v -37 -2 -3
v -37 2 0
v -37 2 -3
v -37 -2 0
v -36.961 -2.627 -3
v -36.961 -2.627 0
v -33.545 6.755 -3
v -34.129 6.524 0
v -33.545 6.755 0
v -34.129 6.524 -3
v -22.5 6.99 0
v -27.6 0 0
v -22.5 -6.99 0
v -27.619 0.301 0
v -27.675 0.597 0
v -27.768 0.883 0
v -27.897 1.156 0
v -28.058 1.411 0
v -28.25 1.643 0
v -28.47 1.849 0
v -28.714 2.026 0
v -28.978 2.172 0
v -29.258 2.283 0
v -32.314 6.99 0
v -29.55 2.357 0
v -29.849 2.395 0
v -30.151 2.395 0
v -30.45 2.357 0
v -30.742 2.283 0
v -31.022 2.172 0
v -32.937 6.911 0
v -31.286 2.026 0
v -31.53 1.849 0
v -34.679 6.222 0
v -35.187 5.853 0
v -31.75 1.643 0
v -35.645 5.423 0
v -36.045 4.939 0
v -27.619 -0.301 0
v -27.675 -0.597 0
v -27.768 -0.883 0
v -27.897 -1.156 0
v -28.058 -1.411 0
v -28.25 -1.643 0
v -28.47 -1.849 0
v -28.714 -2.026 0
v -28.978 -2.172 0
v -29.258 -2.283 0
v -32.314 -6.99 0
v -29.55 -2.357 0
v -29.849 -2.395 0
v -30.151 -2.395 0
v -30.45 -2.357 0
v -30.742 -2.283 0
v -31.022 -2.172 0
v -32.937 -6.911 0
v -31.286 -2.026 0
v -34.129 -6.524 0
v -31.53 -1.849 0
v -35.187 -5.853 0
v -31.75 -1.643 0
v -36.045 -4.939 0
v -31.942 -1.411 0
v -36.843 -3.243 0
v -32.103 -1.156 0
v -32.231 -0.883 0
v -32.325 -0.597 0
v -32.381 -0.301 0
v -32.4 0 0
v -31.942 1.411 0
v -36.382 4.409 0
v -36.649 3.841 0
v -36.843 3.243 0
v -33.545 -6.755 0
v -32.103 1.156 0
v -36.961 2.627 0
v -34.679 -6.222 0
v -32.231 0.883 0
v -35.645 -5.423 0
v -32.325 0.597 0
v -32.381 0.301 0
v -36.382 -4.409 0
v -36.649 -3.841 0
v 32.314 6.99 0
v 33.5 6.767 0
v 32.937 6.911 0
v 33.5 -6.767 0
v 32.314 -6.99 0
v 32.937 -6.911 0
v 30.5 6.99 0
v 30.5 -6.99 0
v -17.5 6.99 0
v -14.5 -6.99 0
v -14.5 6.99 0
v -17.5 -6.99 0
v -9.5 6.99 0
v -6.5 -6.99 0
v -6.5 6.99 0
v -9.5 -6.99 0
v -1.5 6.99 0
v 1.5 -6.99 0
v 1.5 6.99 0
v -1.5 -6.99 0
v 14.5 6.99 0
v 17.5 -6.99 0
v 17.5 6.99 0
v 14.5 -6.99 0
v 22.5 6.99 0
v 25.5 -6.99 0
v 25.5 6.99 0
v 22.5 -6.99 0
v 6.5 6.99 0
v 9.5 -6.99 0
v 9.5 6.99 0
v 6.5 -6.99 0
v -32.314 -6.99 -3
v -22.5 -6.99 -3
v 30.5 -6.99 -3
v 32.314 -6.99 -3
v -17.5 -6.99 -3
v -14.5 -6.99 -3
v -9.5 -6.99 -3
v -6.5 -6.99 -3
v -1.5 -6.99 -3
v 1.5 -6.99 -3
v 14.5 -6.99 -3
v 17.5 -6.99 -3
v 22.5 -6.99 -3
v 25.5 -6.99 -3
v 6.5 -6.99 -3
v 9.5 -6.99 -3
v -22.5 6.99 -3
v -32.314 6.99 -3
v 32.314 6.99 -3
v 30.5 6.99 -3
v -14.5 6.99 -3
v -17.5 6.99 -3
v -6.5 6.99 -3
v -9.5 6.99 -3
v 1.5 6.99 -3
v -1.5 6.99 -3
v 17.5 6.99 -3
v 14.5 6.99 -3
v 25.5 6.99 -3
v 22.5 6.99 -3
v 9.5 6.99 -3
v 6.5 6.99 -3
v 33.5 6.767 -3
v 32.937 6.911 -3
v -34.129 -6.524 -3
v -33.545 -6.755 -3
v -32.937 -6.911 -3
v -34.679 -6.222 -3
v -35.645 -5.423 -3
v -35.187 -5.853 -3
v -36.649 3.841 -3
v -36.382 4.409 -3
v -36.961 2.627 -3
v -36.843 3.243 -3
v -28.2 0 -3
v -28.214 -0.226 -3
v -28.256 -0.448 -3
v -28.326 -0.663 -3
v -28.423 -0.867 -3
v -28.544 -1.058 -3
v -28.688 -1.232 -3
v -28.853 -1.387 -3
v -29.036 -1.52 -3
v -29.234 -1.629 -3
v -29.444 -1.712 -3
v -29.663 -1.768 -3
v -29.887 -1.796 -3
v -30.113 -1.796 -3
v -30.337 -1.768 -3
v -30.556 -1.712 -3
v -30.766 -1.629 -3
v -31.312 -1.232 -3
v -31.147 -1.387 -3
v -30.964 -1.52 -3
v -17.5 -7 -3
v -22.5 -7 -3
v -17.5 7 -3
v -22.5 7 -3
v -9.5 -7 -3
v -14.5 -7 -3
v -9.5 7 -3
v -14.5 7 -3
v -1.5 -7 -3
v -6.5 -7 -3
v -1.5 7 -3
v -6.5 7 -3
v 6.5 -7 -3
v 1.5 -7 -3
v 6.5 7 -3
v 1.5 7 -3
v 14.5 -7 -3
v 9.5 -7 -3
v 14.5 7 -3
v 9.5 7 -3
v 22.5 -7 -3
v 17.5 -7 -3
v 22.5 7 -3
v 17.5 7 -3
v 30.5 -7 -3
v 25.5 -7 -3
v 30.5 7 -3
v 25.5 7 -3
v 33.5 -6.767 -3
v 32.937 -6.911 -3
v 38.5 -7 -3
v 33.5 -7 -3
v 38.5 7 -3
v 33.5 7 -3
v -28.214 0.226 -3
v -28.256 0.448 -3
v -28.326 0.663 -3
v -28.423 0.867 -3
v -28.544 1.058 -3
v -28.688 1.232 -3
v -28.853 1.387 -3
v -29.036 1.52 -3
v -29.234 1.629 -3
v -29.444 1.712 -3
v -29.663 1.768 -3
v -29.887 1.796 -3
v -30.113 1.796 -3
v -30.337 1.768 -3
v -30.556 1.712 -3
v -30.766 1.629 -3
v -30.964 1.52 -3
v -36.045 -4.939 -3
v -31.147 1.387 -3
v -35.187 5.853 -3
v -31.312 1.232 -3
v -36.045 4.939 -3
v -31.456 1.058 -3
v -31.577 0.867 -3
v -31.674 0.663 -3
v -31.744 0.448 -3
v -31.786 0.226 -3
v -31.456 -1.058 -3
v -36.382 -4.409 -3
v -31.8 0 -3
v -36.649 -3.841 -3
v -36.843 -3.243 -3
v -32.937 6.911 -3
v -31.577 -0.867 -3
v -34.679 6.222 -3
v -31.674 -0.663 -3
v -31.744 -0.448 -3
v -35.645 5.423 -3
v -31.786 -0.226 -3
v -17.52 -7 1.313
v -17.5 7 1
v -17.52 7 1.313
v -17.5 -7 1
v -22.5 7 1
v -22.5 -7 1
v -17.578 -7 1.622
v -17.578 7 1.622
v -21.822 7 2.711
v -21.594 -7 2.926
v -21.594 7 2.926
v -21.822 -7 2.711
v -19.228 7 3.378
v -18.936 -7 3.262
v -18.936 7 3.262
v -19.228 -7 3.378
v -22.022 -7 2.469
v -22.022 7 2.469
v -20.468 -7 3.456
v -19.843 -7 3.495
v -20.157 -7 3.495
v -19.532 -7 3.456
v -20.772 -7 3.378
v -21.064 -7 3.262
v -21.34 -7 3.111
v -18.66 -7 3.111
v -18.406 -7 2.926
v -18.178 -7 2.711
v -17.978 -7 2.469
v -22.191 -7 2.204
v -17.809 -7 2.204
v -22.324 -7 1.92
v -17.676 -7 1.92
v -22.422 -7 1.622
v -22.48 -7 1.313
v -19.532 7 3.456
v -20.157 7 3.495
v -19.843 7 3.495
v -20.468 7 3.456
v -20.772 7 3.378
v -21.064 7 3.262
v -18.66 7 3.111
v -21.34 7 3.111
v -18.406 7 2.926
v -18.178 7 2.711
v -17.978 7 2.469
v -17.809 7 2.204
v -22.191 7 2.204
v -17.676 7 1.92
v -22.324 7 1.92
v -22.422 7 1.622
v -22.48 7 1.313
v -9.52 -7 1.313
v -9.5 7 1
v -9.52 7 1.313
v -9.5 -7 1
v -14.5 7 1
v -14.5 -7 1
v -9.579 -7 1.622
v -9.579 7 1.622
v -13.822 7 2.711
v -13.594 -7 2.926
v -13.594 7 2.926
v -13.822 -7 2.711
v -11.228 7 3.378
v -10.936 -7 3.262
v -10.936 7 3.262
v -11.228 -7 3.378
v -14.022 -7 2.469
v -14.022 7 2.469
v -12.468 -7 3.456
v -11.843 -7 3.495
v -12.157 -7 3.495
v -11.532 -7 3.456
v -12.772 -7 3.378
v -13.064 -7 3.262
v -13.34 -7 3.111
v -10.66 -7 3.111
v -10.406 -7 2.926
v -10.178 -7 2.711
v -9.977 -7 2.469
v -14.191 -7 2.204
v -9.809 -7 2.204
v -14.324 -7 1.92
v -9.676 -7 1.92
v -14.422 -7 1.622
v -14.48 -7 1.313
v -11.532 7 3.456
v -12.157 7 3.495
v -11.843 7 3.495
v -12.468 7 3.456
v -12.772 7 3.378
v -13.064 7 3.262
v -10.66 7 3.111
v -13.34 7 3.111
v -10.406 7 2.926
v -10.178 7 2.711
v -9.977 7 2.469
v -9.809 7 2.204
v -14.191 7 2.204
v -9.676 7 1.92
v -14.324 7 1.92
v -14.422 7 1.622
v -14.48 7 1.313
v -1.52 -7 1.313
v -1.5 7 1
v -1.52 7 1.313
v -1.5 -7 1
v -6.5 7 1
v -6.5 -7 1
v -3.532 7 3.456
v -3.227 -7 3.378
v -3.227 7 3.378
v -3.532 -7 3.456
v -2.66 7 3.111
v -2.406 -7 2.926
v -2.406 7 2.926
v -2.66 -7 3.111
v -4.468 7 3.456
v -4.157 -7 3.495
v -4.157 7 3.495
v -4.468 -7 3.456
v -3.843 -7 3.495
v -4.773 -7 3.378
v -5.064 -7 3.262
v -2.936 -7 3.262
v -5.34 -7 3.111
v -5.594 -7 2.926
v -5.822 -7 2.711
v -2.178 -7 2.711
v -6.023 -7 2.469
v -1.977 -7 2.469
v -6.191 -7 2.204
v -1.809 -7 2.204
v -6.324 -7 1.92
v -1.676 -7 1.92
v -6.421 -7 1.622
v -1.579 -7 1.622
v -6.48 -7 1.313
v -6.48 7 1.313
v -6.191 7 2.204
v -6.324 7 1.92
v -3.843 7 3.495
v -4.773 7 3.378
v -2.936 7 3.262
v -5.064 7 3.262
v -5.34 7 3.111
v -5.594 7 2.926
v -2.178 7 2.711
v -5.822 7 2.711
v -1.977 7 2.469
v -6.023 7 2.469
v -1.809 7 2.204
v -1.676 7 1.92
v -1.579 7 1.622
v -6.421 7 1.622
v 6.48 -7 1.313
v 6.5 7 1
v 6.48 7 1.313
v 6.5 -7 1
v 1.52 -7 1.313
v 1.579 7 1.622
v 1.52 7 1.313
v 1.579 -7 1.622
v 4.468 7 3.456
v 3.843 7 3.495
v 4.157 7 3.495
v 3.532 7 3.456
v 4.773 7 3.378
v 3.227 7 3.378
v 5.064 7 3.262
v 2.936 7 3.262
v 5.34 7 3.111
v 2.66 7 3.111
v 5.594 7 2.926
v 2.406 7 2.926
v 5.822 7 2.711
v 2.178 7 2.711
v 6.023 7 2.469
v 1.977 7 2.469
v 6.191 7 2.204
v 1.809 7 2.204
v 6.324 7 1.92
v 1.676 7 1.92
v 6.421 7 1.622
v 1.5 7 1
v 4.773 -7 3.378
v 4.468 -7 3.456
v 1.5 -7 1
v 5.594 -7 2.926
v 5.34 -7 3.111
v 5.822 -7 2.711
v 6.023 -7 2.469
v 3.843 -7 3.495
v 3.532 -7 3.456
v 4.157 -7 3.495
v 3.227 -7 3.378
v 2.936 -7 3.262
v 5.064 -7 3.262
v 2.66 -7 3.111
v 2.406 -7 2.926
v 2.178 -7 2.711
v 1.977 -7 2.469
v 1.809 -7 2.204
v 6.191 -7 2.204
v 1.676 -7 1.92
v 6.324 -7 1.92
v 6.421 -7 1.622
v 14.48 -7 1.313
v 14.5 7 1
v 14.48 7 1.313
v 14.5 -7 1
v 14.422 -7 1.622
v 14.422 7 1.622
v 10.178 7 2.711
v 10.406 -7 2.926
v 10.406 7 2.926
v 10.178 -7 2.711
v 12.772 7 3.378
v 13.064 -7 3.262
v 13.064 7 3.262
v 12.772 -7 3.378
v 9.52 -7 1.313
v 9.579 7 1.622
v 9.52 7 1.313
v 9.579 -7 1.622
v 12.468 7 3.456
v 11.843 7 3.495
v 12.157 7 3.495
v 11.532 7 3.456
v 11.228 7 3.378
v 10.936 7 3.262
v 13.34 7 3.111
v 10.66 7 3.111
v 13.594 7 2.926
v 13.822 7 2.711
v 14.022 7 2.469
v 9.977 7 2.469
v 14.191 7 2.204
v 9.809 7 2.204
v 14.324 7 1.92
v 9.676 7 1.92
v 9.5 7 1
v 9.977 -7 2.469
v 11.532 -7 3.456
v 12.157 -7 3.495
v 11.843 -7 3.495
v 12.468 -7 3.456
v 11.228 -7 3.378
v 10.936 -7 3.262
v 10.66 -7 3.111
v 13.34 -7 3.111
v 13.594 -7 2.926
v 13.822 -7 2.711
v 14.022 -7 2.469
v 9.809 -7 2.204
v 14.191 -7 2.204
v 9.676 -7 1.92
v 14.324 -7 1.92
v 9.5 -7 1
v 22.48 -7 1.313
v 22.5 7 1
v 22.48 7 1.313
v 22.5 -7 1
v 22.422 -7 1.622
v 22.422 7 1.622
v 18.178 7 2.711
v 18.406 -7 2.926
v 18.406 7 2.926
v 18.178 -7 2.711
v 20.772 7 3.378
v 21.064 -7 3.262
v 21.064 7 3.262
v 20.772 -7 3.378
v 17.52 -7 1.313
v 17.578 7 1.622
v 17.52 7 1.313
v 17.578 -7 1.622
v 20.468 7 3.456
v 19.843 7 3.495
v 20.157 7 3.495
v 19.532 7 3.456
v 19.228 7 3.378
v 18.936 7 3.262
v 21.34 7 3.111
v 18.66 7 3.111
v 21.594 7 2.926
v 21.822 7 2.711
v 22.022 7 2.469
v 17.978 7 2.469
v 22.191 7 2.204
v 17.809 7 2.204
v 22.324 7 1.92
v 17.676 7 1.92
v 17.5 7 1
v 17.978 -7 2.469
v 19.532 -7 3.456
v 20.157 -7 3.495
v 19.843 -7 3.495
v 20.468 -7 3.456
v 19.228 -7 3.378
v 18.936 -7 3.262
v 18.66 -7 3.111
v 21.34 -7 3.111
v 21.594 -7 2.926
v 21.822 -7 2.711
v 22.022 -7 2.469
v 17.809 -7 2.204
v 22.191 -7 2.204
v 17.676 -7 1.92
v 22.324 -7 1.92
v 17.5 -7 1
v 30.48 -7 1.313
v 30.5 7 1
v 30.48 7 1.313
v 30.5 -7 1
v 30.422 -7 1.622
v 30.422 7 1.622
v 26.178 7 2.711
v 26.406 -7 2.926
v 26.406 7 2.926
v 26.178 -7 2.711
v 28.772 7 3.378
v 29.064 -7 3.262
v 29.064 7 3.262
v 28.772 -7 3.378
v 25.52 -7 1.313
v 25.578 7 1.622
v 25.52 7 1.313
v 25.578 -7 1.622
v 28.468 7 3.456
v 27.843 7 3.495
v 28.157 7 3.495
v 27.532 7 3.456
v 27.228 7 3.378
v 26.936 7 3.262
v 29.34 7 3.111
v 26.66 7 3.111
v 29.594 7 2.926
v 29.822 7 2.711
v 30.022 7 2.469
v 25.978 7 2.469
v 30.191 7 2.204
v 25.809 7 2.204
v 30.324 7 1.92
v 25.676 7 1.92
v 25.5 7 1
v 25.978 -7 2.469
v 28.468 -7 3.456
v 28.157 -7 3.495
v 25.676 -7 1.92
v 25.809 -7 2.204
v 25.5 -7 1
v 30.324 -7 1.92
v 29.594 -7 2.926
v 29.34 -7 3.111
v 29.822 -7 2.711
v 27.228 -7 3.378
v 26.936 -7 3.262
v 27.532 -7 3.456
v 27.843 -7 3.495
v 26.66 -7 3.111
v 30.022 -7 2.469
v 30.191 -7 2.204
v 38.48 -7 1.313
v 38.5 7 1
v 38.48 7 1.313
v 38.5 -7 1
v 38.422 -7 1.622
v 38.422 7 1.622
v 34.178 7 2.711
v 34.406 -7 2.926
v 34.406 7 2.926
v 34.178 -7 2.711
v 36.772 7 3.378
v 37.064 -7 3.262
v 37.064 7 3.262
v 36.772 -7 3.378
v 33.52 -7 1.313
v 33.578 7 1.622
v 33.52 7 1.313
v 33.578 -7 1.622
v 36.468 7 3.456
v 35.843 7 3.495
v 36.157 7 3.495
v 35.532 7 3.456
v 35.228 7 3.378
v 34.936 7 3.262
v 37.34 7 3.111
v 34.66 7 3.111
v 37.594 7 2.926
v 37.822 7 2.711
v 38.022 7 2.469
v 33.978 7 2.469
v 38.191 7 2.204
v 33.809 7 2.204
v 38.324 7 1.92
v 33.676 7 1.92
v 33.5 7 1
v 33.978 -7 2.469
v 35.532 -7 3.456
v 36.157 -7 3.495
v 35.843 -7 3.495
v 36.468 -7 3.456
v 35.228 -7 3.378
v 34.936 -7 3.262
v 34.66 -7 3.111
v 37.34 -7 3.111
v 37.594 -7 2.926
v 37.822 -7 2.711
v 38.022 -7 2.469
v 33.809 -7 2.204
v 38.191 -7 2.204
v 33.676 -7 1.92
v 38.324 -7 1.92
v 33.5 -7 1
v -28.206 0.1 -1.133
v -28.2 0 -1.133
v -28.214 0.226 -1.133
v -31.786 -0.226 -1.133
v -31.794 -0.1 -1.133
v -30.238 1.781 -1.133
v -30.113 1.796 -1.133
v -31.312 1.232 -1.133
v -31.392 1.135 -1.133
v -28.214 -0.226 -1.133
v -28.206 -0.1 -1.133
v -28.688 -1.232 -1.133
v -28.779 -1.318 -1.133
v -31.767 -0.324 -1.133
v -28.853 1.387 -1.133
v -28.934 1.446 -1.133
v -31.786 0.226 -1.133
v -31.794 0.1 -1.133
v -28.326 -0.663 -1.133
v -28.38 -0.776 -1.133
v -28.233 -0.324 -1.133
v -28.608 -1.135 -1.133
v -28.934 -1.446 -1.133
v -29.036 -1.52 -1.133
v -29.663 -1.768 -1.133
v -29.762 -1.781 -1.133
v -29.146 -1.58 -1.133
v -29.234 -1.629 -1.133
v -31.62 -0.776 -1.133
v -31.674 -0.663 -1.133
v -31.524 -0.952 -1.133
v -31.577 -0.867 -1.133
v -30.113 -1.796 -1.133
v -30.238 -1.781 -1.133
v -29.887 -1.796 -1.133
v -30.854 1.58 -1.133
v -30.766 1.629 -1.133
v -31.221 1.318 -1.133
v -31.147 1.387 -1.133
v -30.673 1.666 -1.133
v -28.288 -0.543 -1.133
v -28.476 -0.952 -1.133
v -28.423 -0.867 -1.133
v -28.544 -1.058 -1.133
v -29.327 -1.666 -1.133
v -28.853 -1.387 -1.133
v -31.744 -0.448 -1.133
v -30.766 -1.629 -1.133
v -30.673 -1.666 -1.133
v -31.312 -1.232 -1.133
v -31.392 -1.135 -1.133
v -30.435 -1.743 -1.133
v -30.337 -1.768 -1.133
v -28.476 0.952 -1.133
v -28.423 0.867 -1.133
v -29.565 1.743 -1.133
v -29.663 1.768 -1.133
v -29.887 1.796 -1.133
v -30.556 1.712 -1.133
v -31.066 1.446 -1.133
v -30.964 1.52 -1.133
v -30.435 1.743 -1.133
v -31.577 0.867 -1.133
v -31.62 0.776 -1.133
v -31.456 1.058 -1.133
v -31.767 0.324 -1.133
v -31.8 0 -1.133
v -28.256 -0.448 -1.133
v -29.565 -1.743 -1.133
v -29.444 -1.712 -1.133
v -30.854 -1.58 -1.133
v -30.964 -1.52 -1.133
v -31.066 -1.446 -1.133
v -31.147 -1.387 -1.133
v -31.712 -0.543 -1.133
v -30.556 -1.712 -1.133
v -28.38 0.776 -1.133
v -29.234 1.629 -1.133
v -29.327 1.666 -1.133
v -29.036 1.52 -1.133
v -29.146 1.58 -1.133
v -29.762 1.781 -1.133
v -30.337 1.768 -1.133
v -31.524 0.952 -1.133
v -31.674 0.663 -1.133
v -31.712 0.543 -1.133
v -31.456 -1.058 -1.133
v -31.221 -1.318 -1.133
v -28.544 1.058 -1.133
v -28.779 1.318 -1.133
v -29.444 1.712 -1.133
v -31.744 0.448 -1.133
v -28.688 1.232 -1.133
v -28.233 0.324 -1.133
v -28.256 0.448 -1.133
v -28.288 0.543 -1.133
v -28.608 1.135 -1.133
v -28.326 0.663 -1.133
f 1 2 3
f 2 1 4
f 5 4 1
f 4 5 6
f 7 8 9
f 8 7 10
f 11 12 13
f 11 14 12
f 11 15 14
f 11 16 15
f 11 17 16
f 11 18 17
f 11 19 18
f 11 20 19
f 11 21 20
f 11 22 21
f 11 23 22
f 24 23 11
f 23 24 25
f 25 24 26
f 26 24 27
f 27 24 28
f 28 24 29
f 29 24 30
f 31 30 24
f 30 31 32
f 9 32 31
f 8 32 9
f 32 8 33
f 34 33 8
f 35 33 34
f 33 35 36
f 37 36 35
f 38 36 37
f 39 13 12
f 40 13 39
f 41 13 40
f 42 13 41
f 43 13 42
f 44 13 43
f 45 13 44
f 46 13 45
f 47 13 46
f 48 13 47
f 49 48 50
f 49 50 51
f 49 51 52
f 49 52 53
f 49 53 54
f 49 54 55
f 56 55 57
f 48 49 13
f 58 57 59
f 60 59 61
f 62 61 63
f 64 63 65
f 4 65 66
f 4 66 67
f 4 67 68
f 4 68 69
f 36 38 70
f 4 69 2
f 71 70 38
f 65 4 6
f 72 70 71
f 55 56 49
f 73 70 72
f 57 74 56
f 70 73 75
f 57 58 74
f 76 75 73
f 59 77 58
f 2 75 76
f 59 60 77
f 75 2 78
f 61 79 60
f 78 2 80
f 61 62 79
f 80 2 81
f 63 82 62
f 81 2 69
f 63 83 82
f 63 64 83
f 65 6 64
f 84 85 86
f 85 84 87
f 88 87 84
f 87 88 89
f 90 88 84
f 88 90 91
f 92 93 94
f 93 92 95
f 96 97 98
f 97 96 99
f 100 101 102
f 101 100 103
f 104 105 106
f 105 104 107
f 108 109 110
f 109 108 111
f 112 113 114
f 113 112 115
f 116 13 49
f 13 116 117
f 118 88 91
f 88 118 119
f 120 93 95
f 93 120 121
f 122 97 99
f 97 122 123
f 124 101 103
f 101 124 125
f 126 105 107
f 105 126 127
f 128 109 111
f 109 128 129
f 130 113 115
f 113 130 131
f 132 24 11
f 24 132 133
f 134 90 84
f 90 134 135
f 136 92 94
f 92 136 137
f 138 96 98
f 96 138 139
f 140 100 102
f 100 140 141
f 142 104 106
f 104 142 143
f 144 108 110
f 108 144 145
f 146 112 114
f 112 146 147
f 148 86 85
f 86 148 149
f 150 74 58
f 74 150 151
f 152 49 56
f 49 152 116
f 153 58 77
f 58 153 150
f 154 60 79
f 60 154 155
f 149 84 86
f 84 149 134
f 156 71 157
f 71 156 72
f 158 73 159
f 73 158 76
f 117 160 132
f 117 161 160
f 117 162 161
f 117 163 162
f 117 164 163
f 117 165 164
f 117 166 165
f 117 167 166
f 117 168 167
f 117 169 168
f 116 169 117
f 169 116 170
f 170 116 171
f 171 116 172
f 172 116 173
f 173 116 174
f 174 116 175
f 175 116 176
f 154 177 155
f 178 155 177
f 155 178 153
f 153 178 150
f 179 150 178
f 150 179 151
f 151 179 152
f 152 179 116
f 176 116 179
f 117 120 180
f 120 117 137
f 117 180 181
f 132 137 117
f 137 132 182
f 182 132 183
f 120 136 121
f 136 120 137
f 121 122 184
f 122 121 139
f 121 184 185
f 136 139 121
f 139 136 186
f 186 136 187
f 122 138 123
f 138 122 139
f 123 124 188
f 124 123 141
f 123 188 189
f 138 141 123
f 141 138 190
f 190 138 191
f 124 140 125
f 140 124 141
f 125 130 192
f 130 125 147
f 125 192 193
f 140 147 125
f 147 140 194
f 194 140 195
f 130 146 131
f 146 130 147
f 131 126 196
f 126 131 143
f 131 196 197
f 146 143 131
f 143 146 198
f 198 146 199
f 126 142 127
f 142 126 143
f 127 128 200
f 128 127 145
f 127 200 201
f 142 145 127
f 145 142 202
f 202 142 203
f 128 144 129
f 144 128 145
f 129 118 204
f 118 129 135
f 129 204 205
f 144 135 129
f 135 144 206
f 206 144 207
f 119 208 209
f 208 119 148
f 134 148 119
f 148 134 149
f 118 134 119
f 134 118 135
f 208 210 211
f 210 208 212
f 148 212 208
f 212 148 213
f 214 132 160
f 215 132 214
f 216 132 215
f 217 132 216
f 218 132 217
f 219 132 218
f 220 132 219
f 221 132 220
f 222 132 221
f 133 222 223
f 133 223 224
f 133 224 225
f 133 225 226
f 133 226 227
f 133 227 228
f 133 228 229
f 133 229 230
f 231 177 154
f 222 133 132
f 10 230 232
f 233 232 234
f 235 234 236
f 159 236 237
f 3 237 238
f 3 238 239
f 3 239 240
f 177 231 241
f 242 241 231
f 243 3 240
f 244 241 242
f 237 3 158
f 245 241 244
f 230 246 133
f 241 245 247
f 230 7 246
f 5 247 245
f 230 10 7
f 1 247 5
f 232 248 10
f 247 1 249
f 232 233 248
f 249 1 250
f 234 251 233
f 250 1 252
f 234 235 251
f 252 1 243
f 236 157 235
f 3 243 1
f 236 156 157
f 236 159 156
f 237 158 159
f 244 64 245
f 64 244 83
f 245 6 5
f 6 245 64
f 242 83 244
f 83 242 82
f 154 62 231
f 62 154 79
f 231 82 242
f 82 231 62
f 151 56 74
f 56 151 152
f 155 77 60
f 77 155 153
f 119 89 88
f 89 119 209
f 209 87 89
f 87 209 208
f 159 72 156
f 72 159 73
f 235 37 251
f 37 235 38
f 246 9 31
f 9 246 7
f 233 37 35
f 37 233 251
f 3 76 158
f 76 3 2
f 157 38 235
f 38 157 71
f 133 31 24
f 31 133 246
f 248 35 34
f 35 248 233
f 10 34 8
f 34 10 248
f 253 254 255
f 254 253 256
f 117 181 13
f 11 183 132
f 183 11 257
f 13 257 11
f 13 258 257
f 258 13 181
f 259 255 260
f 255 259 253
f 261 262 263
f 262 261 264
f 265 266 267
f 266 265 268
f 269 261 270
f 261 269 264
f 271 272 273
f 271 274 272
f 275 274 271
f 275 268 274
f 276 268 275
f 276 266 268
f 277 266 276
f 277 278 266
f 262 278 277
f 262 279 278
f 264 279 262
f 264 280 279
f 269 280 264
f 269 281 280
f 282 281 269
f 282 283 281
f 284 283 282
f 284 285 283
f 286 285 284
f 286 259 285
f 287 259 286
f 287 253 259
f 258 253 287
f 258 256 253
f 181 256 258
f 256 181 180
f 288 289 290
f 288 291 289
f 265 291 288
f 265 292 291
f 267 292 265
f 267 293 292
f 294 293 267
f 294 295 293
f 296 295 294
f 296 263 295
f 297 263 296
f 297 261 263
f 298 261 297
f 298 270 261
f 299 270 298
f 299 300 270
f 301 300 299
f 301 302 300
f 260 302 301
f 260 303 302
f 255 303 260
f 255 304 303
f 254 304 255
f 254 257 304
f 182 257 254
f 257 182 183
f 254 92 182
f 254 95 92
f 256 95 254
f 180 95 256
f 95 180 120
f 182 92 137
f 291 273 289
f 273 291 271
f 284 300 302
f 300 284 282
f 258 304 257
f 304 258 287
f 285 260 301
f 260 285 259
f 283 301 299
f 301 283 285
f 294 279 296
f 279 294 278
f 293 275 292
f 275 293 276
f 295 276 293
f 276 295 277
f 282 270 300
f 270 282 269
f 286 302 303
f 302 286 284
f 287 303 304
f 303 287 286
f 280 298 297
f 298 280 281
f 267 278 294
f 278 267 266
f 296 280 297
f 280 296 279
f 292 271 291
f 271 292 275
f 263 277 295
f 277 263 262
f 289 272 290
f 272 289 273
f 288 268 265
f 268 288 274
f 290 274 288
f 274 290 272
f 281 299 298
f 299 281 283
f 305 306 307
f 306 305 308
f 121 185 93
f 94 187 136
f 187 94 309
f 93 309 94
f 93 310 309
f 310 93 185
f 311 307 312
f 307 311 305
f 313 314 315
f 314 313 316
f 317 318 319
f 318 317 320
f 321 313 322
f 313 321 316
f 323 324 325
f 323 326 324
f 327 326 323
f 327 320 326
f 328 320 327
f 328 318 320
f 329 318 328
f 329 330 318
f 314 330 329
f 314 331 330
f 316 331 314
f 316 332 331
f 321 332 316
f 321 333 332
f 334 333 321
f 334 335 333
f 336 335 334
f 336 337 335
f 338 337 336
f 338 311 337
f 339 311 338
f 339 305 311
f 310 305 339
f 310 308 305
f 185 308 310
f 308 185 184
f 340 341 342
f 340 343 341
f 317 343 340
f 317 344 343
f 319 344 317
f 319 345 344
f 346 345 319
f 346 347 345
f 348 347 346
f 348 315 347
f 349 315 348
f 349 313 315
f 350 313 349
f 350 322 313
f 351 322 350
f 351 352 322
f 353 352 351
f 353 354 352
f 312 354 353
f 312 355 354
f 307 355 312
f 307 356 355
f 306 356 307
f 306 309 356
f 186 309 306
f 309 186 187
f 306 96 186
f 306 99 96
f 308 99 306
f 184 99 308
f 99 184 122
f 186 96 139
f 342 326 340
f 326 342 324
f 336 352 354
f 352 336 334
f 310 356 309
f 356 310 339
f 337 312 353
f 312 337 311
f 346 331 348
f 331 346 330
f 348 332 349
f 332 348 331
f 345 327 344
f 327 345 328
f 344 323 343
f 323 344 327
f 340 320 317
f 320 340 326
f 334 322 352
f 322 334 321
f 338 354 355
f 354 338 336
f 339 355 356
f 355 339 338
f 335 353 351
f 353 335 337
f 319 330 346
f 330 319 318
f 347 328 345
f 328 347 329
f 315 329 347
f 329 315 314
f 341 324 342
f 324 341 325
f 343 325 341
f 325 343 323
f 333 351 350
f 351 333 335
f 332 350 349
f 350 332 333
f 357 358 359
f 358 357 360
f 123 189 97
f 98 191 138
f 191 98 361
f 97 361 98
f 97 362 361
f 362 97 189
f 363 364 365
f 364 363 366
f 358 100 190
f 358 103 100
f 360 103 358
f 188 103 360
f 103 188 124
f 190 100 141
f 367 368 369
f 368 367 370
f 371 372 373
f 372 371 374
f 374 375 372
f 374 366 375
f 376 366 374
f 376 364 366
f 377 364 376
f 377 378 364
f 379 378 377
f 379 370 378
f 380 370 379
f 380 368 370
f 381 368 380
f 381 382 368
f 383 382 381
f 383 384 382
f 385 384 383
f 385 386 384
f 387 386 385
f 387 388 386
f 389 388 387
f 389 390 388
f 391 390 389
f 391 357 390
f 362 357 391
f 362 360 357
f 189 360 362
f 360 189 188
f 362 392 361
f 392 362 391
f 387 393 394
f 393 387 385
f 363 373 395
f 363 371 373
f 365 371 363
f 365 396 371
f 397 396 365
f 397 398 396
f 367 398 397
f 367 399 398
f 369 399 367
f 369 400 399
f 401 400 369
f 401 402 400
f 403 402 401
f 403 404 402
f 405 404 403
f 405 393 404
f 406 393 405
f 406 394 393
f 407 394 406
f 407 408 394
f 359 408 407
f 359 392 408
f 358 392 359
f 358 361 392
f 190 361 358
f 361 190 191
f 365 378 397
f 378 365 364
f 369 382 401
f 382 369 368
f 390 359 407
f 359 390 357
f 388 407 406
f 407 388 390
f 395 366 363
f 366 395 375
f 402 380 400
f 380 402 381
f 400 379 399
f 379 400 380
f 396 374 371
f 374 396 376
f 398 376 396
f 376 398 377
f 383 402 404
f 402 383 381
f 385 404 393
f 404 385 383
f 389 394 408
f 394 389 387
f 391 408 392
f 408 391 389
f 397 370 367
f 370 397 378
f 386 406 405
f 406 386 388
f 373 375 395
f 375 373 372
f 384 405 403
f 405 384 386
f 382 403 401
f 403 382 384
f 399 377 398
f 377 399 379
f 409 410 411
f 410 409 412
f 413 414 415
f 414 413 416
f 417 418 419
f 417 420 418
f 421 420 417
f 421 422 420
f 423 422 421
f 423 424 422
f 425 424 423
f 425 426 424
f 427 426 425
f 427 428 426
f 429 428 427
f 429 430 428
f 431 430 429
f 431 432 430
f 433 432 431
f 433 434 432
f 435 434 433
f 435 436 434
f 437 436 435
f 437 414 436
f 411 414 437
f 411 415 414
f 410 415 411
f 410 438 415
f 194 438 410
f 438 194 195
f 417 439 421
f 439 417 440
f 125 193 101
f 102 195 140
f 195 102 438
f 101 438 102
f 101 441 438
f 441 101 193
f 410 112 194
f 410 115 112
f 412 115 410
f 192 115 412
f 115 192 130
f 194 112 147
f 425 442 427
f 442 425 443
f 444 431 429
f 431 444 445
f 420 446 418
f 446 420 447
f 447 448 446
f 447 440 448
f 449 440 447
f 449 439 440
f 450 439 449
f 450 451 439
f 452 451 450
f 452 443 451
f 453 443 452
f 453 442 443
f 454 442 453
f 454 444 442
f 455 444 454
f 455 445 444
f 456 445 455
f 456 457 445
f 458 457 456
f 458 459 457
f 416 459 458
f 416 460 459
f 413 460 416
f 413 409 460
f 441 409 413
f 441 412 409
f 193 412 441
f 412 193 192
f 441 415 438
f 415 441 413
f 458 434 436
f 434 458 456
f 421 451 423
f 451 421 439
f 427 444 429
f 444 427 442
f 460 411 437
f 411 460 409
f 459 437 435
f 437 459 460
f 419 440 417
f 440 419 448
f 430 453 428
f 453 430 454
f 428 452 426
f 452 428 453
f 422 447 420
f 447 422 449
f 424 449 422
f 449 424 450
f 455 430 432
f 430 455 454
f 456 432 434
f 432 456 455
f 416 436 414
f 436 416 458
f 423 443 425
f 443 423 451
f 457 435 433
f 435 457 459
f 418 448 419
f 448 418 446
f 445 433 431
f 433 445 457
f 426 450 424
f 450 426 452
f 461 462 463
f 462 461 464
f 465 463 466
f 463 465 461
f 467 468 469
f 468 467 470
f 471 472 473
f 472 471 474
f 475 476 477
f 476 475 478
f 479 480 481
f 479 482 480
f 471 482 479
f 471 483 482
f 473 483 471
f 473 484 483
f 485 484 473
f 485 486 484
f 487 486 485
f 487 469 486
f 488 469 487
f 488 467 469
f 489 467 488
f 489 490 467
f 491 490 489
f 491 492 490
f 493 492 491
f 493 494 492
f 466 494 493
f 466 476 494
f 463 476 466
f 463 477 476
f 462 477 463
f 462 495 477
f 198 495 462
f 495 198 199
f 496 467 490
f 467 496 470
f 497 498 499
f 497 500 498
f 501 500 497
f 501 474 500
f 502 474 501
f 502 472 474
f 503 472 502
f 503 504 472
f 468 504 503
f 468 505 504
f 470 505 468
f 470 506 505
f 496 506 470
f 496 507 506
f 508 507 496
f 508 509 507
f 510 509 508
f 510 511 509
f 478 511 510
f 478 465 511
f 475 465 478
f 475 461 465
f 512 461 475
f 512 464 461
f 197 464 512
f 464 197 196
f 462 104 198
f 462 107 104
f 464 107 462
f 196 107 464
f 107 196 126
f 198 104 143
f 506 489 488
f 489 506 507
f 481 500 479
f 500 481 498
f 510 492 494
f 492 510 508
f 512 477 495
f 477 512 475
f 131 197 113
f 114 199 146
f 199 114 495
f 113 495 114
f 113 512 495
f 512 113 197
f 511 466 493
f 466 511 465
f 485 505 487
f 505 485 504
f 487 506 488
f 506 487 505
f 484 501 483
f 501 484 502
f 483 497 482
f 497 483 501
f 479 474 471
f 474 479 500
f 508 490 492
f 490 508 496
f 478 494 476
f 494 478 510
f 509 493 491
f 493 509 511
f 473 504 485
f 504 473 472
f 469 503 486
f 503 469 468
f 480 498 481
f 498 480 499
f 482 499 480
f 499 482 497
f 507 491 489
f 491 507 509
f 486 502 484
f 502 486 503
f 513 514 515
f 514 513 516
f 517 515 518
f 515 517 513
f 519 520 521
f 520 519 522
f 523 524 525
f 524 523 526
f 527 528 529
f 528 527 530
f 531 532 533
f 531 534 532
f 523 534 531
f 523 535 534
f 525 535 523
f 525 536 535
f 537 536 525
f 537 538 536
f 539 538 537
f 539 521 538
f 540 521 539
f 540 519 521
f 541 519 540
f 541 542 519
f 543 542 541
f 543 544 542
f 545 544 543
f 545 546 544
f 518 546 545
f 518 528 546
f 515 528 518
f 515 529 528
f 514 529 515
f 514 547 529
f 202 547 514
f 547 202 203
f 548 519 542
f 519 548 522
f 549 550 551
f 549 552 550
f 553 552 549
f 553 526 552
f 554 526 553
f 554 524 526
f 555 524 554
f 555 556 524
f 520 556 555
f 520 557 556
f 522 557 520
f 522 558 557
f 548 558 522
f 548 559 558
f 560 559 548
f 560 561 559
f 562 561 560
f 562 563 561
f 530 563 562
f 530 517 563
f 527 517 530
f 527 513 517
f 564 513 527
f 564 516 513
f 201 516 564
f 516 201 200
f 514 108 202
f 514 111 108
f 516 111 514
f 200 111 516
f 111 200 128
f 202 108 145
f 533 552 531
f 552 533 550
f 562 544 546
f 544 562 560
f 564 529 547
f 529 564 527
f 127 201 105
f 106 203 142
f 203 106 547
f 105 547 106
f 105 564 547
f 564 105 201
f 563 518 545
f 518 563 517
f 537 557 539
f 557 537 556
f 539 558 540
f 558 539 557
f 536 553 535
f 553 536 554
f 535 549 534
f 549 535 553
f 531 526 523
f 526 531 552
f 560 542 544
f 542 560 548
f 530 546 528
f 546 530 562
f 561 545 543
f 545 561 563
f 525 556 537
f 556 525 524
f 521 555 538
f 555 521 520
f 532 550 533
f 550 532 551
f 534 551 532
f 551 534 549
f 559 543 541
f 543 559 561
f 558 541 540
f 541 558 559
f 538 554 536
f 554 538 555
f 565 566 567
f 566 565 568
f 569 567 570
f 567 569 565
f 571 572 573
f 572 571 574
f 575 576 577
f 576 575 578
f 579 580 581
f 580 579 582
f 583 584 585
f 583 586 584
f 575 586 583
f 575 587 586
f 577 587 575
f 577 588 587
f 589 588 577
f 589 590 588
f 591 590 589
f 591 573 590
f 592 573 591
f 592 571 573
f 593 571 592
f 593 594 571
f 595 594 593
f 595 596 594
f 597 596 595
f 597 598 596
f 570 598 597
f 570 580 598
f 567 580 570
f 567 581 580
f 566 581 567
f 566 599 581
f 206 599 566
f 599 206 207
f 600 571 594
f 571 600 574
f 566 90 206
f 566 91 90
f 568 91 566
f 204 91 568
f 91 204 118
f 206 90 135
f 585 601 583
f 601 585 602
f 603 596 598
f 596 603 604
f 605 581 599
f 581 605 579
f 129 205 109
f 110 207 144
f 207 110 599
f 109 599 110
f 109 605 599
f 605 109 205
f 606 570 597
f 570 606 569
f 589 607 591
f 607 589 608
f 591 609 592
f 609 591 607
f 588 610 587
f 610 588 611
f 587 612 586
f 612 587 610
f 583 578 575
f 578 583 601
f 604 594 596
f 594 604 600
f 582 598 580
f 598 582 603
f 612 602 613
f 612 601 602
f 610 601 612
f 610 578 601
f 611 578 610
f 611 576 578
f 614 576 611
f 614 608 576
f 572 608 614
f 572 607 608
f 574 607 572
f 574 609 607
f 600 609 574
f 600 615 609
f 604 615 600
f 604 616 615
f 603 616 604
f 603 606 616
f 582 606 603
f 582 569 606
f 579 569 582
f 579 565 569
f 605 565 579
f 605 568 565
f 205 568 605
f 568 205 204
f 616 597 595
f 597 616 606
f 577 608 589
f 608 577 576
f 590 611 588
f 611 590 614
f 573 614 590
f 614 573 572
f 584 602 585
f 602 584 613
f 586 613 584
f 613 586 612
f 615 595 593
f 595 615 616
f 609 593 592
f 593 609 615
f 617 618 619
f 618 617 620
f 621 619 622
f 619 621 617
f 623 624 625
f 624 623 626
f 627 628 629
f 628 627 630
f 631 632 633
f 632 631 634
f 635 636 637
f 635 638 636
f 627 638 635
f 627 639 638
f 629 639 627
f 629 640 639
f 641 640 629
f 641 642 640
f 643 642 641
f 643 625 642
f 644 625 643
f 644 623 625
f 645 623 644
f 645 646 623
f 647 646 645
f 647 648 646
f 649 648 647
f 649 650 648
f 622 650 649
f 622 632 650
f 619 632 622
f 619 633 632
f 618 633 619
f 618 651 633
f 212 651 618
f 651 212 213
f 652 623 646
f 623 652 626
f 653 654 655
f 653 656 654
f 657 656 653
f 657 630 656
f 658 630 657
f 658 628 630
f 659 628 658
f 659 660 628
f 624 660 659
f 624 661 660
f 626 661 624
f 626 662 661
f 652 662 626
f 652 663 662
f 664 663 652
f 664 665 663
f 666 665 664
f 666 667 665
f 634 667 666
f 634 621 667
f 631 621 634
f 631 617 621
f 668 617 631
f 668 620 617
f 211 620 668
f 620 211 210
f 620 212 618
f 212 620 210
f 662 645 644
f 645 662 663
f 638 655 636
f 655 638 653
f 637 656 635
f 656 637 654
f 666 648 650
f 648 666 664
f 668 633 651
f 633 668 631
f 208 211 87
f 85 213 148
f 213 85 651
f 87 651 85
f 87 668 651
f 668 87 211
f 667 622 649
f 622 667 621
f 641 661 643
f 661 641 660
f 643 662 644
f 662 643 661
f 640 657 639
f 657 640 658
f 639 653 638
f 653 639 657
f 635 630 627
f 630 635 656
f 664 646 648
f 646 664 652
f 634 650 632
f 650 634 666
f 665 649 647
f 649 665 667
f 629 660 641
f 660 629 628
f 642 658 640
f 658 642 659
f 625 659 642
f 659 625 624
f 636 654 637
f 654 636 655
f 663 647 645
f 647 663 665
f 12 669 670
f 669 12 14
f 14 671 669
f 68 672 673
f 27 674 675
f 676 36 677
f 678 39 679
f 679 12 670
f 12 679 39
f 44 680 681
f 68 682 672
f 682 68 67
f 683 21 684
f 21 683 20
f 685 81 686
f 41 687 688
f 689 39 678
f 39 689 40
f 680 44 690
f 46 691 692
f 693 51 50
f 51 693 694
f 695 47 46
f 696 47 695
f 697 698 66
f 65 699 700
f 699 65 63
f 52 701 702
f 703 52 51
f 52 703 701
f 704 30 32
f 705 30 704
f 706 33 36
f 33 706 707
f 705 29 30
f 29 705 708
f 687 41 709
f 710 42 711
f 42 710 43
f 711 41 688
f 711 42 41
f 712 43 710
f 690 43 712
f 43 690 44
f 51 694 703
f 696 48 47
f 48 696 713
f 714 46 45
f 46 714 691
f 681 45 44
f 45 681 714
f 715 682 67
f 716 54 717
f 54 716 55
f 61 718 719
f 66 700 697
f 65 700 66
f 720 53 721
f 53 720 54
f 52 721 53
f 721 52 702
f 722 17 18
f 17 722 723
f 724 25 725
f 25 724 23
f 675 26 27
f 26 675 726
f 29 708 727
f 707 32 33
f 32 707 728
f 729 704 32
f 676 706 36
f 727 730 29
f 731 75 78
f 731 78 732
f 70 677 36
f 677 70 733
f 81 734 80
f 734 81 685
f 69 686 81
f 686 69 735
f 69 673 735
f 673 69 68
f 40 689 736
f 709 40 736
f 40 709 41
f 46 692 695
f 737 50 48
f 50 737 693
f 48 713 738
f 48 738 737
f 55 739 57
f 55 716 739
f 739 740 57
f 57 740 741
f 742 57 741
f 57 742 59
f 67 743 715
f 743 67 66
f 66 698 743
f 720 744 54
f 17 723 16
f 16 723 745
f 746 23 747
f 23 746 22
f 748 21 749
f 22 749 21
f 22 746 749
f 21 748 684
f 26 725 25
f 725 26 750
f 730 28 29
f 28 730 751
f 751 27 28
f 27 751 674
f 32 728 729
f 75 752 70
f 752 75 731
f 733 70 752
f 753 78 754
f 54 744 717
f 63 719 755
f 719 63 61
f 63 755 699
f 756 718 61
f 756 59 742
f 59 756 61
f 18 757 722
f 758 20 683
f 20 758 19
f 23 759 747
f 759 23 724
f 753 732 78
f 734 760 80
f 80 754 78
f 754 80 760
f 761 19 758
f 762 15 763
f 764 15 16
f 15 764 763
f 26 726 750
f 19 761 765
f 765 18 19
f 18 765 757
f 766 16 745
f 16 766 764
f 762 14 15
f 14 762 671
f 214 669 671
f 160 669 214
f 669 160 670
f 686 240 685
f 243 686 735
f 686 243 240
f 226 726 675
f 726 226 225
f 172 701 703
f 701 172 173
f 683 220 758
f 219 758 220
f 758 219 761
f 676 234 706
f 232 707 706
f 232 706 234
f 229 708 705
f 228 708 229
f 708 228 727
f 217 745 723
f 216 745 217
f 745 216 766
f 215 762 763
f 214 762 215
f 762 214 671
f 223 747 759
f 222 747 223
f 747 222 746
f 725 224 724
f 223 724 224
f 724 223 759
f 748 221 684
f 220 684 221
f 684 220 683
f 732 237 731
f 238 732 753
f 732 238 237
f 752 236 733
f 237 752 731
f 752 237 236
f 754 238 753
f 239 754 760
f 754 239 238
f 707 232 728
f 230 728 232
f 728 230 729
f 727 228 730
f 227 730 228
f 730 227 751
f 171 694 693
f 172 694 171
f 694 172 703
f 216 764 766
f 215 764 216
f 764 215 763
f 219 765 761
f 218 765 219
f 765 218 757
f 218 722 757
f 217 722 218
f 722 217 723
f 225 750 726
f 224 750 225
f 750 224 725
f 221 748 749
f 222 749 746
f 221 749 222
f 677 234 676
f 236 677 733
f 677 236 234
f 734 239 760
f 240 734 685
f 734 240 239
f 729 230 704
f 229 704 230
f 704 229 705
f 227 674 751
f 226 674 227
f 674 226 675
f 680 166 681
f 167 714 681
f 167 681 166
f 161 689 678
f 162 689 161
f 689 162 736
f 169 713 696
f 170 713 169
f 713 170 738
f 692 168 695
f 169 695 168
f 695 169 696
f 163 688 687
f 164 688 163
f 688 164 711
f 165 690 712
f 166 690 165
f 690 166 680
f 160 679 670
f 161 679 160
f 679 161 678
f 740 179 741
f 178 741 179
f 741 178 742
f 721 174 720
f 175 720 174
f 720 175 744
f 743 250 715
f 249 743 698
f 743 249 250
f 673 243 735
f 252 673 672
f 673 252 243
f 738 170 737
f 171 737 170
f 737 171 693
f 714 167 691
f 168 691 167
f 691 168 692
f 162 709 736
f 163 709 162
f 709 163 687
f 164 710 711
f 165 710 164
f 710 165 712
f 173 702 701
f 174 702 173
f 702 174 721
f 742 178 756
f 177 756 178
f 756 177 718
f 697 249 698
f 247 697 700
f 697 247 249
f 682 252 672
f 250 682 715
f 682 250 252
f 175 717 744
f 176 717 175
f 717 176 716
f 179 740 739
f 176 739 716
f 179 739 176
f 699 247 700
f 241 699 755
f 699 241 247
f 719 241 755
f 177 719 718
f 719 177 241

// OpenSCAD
$fn = 50;


difference() {
	union() {
		translate(v = [0, 0, -3]) {
			hull() {
				translate(v = [-32.0000000000, 2.0000000000, 0]) {
					cylinder(h = 3, r = 5);
				}
				translate(v = [32.0000000000, 2.0000000000, 0]) {
					cylinder(h = 3, r = 5);
				}
				translate(v = [-32.0000000000, -2.0000000000, 0]) {
					cylinder(h = 3, r = 5);
				}
				translate(v = [32.0000000000, -2.0000000000, 0]) {
					cylinder(h = 3, r = 5);
				}
			}
		}
		translate(v = [-20.0000000000, 7.0000000000, -1.5000000000]) {
			rotate(a = [90, 0, 0]) {
				hull() {
					translate(v = [-0.0000000000, 2.5000000000, 0]) {
						cylinder(h = 14, r = 2.5000000000);
					}
					translate(v = [0.0000000000, 2.5000000000, 0]) {
						cylinder(h = 14, r = 2.5000000000);
					}
					translate(v = [-0.0000000000, -2.5000000000, 0]) {
						cylinder(h = 14, r = 2.5000000000);
					}
					translate(v = [0.0000000000, -2.5000000000, 0]) {
						cylinder(h = 14, r = 2.5000000000);
					}
				}
			}
		}
		translate(v = [-12.0000000000, 7.0000000000, -1.5000000000]) {
			rotate(a = [90, 0, 0]) {
				hull() {
					translate(v = [-0.0000000000, 2.5000000000, 0]) {
						cylinder(h = 14, r = 2.5000000000);
					}
					translate(v = [0.0000000000, 2.5000000000, 0]) {
						cylinder(h = 14, r = 2.5000000000);
					}
					translate(v = [-0.0000000000, -2.5000000000, 0]) {
						cylinder(h = 14, r = 2.5000000000);
					}
					translate(v = [0.0000000000, -2.5000000000, 0]) {
						cylinder(h = 14, r = 2.5000000000);
					}
				}
			}
		}
		translate(v = [-4.0000000000, 7.0000000000, -1.5000000000]) {
			rotate(a = [90, 0, 0]) {
				hull() {
					translate(v = [-0.0000000000, 2.5000000000, 0]) {
						cylinder(h = 14, r = 2.5000000000);
					}
					translate(v = [0.0000000000, 2.5000000000, 0]) {
						cylinder(h = 14, r = 2.5000000000);
					}
					translate(v = [-0.0000000000, -2.5000000000, 0]) {
						cylinder(h = 14, r = 2.5000000000);
					}
					translate(v = [0.0000000000, -2.5000000000, 0]) {
						cylinder(h = 14, r = 2.5000000000);
					}
				}
			}
		}
		translate(v = [4.0000000000, 7.0000000000, -1.5000000000]) {
			rotate(a = [90, 0, 0]) {
				hull() {
					translate(v = [-0.0000000000, 2.5000000000, 0]) {
						cylinder(h = 14, r = 2.5000000000);
					}
					translate(v = [0.0000000000, 2.5000000000, 0]) {
						cylinder(h = 14, r = 2.5000000000);
					}
					translate(v = [-0.0000000000, -2.5000000000, 0]) {
						cylinder(h = 14, r = 2.5000000000);
					}
					translate(v = [0.0000000000, -2.5000000000, 0]) {
						cylinder(h = 14, r = 2.5000000000);
					}
				}
			}
		}
		translate(v = [12.0000000000, 7.0000000000, -1.5000000000]) {
			rotate(a = [90, 0, 0]) {
				hull() {
					translate(v = [-0.0000000000, 2.5000000000, 0]) {
						cylinder(h = 14, r = 2.5000000000);
					}
					translate(v = [0.0000000000, 2.5000000000, 0]) {
						cylinder(h = 14, r = 2.5000000000);
					}
					translate(v = [-0.0000000000, -2.5000000000, 0]) {
						cylinder(h = 14, r = 2.5000000000);
					}
					translate(v = [0.0000000000, -2.5000000000, 0]) {
						cylinder(h = 14, r = 2.5000000000);
					}
				}
			}
		}
		translate(v = [20.0000000000, 7.0000000000, -1.5000000000]) {
			rotate(a = [90, 0, 0]) {
				hull() {
					translate(v = [-0.0000000000, 2.5000000000, 0]) {
						cylinder(h = 14, r = 2.5000000000);
					}
					translate(v = [0.0000000000, 2.5000000000, 0]) {
						cylinder(h = 14, r = 2.5000000000);
					}
					translate(v = [-0.0000000000, -2.5000000000, 0]) {
						cylinder(h = 14, r = 2.5000000000);
					}
					translate(v = [0.0000000000, -2.5000000000, 0]) {
						cylinder(h = 14, r = 2.5000000000);
					}
				}
			}
		}
		translate(v = [28.0000000000, 7.0000000000, -1.5000000000]) {
			rotate(a = [90, 0, 0]) {
				hull() {
					translate(v = [-0.0000000000, 2.5000000000, 0]) {
						cylinder(h = 14, r = 2.5000000000);
					}
					translate(v = [0.0000000000, 2.5000000000, 0]) {
						cylinder(h = 14, r = 2.5000000000);
					}
					translate(v = [-0.0000000000, -2.5000000000, 0]) {
						cylinder(h = 14, r = 2.5000000000);
					}
					translate(v = [0.0000000000, -2.5000000000, 0]) {
						cylinder(h = 14, r = 2.5000000000);
					}
				}
			}
		}
		translate(v = [36.0000000000, 7.0000000000, -1.5000000000]) {
			rotate(a = [90, 0, 0]) {
				hull() {
					translate(v = [-0.0000000000, 2.5000000000, 0]) {
						cylinder(h = 14, r = 2.5000000000);
					}
					translate(v = [0.0000000000, 2.5000000000, 0]) {
						cylinder(h = 14, r = 2.5000000000);
					}
					translate(v = [-0.0000000000, -2.5000000000, 0]) {
						cylinder(h = 14, r = 2.5000000000);
					}
					translate(v = [0.0000000000, -2.5000000000, 0]) {
						cylinder(h = 14, r = 2.5000000000);
					}
				}
			}
		}
	}
	union() {
		translate(v = [-30.0000000000, 0.0000000000, 0]) {
			rotate(a = [0, 0, 0]) {
				difference() {
					union() {
						translate(v = [0, 0, -1.7000000000]) {
							cylinder(h = 1.7000000000, r1 = 1.5000000000, r2 = 2.4000000000);
						}
						translate(v = [0, 0, -3.0000000000]) {
							cylinder(h = 3, r = 1.5000000000);
						}
						translate(v = [0, 0, -3.0000000000]) {
							cylinder(h = 3, r = 1.8000000000);
						}
						translate(v = [0, 0, -3.0000000000]) {
							cylinder(h = 3, r = 1.5000000000);
						}
					}
					union();
				}
			}
		}
		translate(v = [-250.0000000000, -250.0000000000, -503]) {
			cube(size = [500, 500, 500]);
		}
		translate(v = [-250.0000000000, -250.0000000000, -503]) {
			cube(size = [500, 500, 500]);
		}
		translate(v = [-250.0000000000, -250.0000000000, -503]) {
			cube(size = [500, 500, 500]);
		}
		translate(v = [-30.0000000000, 0.0000000000, -100.0000000000]) {
			cylinder(h = 200, r = 1.5000000000);
		}
		translate(v = [-30.0000000000, 0.0000000000, -100.0000000000]) {
			cylinder(h = 200, r = 1.5000000000);
		}
		translate(v = [-30.0000000000, 0.0000000000, -100.0000000000]) {
			cylinder(h = 200, r = 1.5000000000);
		}
		translate(v = [-30.0000000000, 0.0000000000, -100.0000000000]) {
			cylinder(h = 200, r = 1.5000000000);
		}
	}
}
